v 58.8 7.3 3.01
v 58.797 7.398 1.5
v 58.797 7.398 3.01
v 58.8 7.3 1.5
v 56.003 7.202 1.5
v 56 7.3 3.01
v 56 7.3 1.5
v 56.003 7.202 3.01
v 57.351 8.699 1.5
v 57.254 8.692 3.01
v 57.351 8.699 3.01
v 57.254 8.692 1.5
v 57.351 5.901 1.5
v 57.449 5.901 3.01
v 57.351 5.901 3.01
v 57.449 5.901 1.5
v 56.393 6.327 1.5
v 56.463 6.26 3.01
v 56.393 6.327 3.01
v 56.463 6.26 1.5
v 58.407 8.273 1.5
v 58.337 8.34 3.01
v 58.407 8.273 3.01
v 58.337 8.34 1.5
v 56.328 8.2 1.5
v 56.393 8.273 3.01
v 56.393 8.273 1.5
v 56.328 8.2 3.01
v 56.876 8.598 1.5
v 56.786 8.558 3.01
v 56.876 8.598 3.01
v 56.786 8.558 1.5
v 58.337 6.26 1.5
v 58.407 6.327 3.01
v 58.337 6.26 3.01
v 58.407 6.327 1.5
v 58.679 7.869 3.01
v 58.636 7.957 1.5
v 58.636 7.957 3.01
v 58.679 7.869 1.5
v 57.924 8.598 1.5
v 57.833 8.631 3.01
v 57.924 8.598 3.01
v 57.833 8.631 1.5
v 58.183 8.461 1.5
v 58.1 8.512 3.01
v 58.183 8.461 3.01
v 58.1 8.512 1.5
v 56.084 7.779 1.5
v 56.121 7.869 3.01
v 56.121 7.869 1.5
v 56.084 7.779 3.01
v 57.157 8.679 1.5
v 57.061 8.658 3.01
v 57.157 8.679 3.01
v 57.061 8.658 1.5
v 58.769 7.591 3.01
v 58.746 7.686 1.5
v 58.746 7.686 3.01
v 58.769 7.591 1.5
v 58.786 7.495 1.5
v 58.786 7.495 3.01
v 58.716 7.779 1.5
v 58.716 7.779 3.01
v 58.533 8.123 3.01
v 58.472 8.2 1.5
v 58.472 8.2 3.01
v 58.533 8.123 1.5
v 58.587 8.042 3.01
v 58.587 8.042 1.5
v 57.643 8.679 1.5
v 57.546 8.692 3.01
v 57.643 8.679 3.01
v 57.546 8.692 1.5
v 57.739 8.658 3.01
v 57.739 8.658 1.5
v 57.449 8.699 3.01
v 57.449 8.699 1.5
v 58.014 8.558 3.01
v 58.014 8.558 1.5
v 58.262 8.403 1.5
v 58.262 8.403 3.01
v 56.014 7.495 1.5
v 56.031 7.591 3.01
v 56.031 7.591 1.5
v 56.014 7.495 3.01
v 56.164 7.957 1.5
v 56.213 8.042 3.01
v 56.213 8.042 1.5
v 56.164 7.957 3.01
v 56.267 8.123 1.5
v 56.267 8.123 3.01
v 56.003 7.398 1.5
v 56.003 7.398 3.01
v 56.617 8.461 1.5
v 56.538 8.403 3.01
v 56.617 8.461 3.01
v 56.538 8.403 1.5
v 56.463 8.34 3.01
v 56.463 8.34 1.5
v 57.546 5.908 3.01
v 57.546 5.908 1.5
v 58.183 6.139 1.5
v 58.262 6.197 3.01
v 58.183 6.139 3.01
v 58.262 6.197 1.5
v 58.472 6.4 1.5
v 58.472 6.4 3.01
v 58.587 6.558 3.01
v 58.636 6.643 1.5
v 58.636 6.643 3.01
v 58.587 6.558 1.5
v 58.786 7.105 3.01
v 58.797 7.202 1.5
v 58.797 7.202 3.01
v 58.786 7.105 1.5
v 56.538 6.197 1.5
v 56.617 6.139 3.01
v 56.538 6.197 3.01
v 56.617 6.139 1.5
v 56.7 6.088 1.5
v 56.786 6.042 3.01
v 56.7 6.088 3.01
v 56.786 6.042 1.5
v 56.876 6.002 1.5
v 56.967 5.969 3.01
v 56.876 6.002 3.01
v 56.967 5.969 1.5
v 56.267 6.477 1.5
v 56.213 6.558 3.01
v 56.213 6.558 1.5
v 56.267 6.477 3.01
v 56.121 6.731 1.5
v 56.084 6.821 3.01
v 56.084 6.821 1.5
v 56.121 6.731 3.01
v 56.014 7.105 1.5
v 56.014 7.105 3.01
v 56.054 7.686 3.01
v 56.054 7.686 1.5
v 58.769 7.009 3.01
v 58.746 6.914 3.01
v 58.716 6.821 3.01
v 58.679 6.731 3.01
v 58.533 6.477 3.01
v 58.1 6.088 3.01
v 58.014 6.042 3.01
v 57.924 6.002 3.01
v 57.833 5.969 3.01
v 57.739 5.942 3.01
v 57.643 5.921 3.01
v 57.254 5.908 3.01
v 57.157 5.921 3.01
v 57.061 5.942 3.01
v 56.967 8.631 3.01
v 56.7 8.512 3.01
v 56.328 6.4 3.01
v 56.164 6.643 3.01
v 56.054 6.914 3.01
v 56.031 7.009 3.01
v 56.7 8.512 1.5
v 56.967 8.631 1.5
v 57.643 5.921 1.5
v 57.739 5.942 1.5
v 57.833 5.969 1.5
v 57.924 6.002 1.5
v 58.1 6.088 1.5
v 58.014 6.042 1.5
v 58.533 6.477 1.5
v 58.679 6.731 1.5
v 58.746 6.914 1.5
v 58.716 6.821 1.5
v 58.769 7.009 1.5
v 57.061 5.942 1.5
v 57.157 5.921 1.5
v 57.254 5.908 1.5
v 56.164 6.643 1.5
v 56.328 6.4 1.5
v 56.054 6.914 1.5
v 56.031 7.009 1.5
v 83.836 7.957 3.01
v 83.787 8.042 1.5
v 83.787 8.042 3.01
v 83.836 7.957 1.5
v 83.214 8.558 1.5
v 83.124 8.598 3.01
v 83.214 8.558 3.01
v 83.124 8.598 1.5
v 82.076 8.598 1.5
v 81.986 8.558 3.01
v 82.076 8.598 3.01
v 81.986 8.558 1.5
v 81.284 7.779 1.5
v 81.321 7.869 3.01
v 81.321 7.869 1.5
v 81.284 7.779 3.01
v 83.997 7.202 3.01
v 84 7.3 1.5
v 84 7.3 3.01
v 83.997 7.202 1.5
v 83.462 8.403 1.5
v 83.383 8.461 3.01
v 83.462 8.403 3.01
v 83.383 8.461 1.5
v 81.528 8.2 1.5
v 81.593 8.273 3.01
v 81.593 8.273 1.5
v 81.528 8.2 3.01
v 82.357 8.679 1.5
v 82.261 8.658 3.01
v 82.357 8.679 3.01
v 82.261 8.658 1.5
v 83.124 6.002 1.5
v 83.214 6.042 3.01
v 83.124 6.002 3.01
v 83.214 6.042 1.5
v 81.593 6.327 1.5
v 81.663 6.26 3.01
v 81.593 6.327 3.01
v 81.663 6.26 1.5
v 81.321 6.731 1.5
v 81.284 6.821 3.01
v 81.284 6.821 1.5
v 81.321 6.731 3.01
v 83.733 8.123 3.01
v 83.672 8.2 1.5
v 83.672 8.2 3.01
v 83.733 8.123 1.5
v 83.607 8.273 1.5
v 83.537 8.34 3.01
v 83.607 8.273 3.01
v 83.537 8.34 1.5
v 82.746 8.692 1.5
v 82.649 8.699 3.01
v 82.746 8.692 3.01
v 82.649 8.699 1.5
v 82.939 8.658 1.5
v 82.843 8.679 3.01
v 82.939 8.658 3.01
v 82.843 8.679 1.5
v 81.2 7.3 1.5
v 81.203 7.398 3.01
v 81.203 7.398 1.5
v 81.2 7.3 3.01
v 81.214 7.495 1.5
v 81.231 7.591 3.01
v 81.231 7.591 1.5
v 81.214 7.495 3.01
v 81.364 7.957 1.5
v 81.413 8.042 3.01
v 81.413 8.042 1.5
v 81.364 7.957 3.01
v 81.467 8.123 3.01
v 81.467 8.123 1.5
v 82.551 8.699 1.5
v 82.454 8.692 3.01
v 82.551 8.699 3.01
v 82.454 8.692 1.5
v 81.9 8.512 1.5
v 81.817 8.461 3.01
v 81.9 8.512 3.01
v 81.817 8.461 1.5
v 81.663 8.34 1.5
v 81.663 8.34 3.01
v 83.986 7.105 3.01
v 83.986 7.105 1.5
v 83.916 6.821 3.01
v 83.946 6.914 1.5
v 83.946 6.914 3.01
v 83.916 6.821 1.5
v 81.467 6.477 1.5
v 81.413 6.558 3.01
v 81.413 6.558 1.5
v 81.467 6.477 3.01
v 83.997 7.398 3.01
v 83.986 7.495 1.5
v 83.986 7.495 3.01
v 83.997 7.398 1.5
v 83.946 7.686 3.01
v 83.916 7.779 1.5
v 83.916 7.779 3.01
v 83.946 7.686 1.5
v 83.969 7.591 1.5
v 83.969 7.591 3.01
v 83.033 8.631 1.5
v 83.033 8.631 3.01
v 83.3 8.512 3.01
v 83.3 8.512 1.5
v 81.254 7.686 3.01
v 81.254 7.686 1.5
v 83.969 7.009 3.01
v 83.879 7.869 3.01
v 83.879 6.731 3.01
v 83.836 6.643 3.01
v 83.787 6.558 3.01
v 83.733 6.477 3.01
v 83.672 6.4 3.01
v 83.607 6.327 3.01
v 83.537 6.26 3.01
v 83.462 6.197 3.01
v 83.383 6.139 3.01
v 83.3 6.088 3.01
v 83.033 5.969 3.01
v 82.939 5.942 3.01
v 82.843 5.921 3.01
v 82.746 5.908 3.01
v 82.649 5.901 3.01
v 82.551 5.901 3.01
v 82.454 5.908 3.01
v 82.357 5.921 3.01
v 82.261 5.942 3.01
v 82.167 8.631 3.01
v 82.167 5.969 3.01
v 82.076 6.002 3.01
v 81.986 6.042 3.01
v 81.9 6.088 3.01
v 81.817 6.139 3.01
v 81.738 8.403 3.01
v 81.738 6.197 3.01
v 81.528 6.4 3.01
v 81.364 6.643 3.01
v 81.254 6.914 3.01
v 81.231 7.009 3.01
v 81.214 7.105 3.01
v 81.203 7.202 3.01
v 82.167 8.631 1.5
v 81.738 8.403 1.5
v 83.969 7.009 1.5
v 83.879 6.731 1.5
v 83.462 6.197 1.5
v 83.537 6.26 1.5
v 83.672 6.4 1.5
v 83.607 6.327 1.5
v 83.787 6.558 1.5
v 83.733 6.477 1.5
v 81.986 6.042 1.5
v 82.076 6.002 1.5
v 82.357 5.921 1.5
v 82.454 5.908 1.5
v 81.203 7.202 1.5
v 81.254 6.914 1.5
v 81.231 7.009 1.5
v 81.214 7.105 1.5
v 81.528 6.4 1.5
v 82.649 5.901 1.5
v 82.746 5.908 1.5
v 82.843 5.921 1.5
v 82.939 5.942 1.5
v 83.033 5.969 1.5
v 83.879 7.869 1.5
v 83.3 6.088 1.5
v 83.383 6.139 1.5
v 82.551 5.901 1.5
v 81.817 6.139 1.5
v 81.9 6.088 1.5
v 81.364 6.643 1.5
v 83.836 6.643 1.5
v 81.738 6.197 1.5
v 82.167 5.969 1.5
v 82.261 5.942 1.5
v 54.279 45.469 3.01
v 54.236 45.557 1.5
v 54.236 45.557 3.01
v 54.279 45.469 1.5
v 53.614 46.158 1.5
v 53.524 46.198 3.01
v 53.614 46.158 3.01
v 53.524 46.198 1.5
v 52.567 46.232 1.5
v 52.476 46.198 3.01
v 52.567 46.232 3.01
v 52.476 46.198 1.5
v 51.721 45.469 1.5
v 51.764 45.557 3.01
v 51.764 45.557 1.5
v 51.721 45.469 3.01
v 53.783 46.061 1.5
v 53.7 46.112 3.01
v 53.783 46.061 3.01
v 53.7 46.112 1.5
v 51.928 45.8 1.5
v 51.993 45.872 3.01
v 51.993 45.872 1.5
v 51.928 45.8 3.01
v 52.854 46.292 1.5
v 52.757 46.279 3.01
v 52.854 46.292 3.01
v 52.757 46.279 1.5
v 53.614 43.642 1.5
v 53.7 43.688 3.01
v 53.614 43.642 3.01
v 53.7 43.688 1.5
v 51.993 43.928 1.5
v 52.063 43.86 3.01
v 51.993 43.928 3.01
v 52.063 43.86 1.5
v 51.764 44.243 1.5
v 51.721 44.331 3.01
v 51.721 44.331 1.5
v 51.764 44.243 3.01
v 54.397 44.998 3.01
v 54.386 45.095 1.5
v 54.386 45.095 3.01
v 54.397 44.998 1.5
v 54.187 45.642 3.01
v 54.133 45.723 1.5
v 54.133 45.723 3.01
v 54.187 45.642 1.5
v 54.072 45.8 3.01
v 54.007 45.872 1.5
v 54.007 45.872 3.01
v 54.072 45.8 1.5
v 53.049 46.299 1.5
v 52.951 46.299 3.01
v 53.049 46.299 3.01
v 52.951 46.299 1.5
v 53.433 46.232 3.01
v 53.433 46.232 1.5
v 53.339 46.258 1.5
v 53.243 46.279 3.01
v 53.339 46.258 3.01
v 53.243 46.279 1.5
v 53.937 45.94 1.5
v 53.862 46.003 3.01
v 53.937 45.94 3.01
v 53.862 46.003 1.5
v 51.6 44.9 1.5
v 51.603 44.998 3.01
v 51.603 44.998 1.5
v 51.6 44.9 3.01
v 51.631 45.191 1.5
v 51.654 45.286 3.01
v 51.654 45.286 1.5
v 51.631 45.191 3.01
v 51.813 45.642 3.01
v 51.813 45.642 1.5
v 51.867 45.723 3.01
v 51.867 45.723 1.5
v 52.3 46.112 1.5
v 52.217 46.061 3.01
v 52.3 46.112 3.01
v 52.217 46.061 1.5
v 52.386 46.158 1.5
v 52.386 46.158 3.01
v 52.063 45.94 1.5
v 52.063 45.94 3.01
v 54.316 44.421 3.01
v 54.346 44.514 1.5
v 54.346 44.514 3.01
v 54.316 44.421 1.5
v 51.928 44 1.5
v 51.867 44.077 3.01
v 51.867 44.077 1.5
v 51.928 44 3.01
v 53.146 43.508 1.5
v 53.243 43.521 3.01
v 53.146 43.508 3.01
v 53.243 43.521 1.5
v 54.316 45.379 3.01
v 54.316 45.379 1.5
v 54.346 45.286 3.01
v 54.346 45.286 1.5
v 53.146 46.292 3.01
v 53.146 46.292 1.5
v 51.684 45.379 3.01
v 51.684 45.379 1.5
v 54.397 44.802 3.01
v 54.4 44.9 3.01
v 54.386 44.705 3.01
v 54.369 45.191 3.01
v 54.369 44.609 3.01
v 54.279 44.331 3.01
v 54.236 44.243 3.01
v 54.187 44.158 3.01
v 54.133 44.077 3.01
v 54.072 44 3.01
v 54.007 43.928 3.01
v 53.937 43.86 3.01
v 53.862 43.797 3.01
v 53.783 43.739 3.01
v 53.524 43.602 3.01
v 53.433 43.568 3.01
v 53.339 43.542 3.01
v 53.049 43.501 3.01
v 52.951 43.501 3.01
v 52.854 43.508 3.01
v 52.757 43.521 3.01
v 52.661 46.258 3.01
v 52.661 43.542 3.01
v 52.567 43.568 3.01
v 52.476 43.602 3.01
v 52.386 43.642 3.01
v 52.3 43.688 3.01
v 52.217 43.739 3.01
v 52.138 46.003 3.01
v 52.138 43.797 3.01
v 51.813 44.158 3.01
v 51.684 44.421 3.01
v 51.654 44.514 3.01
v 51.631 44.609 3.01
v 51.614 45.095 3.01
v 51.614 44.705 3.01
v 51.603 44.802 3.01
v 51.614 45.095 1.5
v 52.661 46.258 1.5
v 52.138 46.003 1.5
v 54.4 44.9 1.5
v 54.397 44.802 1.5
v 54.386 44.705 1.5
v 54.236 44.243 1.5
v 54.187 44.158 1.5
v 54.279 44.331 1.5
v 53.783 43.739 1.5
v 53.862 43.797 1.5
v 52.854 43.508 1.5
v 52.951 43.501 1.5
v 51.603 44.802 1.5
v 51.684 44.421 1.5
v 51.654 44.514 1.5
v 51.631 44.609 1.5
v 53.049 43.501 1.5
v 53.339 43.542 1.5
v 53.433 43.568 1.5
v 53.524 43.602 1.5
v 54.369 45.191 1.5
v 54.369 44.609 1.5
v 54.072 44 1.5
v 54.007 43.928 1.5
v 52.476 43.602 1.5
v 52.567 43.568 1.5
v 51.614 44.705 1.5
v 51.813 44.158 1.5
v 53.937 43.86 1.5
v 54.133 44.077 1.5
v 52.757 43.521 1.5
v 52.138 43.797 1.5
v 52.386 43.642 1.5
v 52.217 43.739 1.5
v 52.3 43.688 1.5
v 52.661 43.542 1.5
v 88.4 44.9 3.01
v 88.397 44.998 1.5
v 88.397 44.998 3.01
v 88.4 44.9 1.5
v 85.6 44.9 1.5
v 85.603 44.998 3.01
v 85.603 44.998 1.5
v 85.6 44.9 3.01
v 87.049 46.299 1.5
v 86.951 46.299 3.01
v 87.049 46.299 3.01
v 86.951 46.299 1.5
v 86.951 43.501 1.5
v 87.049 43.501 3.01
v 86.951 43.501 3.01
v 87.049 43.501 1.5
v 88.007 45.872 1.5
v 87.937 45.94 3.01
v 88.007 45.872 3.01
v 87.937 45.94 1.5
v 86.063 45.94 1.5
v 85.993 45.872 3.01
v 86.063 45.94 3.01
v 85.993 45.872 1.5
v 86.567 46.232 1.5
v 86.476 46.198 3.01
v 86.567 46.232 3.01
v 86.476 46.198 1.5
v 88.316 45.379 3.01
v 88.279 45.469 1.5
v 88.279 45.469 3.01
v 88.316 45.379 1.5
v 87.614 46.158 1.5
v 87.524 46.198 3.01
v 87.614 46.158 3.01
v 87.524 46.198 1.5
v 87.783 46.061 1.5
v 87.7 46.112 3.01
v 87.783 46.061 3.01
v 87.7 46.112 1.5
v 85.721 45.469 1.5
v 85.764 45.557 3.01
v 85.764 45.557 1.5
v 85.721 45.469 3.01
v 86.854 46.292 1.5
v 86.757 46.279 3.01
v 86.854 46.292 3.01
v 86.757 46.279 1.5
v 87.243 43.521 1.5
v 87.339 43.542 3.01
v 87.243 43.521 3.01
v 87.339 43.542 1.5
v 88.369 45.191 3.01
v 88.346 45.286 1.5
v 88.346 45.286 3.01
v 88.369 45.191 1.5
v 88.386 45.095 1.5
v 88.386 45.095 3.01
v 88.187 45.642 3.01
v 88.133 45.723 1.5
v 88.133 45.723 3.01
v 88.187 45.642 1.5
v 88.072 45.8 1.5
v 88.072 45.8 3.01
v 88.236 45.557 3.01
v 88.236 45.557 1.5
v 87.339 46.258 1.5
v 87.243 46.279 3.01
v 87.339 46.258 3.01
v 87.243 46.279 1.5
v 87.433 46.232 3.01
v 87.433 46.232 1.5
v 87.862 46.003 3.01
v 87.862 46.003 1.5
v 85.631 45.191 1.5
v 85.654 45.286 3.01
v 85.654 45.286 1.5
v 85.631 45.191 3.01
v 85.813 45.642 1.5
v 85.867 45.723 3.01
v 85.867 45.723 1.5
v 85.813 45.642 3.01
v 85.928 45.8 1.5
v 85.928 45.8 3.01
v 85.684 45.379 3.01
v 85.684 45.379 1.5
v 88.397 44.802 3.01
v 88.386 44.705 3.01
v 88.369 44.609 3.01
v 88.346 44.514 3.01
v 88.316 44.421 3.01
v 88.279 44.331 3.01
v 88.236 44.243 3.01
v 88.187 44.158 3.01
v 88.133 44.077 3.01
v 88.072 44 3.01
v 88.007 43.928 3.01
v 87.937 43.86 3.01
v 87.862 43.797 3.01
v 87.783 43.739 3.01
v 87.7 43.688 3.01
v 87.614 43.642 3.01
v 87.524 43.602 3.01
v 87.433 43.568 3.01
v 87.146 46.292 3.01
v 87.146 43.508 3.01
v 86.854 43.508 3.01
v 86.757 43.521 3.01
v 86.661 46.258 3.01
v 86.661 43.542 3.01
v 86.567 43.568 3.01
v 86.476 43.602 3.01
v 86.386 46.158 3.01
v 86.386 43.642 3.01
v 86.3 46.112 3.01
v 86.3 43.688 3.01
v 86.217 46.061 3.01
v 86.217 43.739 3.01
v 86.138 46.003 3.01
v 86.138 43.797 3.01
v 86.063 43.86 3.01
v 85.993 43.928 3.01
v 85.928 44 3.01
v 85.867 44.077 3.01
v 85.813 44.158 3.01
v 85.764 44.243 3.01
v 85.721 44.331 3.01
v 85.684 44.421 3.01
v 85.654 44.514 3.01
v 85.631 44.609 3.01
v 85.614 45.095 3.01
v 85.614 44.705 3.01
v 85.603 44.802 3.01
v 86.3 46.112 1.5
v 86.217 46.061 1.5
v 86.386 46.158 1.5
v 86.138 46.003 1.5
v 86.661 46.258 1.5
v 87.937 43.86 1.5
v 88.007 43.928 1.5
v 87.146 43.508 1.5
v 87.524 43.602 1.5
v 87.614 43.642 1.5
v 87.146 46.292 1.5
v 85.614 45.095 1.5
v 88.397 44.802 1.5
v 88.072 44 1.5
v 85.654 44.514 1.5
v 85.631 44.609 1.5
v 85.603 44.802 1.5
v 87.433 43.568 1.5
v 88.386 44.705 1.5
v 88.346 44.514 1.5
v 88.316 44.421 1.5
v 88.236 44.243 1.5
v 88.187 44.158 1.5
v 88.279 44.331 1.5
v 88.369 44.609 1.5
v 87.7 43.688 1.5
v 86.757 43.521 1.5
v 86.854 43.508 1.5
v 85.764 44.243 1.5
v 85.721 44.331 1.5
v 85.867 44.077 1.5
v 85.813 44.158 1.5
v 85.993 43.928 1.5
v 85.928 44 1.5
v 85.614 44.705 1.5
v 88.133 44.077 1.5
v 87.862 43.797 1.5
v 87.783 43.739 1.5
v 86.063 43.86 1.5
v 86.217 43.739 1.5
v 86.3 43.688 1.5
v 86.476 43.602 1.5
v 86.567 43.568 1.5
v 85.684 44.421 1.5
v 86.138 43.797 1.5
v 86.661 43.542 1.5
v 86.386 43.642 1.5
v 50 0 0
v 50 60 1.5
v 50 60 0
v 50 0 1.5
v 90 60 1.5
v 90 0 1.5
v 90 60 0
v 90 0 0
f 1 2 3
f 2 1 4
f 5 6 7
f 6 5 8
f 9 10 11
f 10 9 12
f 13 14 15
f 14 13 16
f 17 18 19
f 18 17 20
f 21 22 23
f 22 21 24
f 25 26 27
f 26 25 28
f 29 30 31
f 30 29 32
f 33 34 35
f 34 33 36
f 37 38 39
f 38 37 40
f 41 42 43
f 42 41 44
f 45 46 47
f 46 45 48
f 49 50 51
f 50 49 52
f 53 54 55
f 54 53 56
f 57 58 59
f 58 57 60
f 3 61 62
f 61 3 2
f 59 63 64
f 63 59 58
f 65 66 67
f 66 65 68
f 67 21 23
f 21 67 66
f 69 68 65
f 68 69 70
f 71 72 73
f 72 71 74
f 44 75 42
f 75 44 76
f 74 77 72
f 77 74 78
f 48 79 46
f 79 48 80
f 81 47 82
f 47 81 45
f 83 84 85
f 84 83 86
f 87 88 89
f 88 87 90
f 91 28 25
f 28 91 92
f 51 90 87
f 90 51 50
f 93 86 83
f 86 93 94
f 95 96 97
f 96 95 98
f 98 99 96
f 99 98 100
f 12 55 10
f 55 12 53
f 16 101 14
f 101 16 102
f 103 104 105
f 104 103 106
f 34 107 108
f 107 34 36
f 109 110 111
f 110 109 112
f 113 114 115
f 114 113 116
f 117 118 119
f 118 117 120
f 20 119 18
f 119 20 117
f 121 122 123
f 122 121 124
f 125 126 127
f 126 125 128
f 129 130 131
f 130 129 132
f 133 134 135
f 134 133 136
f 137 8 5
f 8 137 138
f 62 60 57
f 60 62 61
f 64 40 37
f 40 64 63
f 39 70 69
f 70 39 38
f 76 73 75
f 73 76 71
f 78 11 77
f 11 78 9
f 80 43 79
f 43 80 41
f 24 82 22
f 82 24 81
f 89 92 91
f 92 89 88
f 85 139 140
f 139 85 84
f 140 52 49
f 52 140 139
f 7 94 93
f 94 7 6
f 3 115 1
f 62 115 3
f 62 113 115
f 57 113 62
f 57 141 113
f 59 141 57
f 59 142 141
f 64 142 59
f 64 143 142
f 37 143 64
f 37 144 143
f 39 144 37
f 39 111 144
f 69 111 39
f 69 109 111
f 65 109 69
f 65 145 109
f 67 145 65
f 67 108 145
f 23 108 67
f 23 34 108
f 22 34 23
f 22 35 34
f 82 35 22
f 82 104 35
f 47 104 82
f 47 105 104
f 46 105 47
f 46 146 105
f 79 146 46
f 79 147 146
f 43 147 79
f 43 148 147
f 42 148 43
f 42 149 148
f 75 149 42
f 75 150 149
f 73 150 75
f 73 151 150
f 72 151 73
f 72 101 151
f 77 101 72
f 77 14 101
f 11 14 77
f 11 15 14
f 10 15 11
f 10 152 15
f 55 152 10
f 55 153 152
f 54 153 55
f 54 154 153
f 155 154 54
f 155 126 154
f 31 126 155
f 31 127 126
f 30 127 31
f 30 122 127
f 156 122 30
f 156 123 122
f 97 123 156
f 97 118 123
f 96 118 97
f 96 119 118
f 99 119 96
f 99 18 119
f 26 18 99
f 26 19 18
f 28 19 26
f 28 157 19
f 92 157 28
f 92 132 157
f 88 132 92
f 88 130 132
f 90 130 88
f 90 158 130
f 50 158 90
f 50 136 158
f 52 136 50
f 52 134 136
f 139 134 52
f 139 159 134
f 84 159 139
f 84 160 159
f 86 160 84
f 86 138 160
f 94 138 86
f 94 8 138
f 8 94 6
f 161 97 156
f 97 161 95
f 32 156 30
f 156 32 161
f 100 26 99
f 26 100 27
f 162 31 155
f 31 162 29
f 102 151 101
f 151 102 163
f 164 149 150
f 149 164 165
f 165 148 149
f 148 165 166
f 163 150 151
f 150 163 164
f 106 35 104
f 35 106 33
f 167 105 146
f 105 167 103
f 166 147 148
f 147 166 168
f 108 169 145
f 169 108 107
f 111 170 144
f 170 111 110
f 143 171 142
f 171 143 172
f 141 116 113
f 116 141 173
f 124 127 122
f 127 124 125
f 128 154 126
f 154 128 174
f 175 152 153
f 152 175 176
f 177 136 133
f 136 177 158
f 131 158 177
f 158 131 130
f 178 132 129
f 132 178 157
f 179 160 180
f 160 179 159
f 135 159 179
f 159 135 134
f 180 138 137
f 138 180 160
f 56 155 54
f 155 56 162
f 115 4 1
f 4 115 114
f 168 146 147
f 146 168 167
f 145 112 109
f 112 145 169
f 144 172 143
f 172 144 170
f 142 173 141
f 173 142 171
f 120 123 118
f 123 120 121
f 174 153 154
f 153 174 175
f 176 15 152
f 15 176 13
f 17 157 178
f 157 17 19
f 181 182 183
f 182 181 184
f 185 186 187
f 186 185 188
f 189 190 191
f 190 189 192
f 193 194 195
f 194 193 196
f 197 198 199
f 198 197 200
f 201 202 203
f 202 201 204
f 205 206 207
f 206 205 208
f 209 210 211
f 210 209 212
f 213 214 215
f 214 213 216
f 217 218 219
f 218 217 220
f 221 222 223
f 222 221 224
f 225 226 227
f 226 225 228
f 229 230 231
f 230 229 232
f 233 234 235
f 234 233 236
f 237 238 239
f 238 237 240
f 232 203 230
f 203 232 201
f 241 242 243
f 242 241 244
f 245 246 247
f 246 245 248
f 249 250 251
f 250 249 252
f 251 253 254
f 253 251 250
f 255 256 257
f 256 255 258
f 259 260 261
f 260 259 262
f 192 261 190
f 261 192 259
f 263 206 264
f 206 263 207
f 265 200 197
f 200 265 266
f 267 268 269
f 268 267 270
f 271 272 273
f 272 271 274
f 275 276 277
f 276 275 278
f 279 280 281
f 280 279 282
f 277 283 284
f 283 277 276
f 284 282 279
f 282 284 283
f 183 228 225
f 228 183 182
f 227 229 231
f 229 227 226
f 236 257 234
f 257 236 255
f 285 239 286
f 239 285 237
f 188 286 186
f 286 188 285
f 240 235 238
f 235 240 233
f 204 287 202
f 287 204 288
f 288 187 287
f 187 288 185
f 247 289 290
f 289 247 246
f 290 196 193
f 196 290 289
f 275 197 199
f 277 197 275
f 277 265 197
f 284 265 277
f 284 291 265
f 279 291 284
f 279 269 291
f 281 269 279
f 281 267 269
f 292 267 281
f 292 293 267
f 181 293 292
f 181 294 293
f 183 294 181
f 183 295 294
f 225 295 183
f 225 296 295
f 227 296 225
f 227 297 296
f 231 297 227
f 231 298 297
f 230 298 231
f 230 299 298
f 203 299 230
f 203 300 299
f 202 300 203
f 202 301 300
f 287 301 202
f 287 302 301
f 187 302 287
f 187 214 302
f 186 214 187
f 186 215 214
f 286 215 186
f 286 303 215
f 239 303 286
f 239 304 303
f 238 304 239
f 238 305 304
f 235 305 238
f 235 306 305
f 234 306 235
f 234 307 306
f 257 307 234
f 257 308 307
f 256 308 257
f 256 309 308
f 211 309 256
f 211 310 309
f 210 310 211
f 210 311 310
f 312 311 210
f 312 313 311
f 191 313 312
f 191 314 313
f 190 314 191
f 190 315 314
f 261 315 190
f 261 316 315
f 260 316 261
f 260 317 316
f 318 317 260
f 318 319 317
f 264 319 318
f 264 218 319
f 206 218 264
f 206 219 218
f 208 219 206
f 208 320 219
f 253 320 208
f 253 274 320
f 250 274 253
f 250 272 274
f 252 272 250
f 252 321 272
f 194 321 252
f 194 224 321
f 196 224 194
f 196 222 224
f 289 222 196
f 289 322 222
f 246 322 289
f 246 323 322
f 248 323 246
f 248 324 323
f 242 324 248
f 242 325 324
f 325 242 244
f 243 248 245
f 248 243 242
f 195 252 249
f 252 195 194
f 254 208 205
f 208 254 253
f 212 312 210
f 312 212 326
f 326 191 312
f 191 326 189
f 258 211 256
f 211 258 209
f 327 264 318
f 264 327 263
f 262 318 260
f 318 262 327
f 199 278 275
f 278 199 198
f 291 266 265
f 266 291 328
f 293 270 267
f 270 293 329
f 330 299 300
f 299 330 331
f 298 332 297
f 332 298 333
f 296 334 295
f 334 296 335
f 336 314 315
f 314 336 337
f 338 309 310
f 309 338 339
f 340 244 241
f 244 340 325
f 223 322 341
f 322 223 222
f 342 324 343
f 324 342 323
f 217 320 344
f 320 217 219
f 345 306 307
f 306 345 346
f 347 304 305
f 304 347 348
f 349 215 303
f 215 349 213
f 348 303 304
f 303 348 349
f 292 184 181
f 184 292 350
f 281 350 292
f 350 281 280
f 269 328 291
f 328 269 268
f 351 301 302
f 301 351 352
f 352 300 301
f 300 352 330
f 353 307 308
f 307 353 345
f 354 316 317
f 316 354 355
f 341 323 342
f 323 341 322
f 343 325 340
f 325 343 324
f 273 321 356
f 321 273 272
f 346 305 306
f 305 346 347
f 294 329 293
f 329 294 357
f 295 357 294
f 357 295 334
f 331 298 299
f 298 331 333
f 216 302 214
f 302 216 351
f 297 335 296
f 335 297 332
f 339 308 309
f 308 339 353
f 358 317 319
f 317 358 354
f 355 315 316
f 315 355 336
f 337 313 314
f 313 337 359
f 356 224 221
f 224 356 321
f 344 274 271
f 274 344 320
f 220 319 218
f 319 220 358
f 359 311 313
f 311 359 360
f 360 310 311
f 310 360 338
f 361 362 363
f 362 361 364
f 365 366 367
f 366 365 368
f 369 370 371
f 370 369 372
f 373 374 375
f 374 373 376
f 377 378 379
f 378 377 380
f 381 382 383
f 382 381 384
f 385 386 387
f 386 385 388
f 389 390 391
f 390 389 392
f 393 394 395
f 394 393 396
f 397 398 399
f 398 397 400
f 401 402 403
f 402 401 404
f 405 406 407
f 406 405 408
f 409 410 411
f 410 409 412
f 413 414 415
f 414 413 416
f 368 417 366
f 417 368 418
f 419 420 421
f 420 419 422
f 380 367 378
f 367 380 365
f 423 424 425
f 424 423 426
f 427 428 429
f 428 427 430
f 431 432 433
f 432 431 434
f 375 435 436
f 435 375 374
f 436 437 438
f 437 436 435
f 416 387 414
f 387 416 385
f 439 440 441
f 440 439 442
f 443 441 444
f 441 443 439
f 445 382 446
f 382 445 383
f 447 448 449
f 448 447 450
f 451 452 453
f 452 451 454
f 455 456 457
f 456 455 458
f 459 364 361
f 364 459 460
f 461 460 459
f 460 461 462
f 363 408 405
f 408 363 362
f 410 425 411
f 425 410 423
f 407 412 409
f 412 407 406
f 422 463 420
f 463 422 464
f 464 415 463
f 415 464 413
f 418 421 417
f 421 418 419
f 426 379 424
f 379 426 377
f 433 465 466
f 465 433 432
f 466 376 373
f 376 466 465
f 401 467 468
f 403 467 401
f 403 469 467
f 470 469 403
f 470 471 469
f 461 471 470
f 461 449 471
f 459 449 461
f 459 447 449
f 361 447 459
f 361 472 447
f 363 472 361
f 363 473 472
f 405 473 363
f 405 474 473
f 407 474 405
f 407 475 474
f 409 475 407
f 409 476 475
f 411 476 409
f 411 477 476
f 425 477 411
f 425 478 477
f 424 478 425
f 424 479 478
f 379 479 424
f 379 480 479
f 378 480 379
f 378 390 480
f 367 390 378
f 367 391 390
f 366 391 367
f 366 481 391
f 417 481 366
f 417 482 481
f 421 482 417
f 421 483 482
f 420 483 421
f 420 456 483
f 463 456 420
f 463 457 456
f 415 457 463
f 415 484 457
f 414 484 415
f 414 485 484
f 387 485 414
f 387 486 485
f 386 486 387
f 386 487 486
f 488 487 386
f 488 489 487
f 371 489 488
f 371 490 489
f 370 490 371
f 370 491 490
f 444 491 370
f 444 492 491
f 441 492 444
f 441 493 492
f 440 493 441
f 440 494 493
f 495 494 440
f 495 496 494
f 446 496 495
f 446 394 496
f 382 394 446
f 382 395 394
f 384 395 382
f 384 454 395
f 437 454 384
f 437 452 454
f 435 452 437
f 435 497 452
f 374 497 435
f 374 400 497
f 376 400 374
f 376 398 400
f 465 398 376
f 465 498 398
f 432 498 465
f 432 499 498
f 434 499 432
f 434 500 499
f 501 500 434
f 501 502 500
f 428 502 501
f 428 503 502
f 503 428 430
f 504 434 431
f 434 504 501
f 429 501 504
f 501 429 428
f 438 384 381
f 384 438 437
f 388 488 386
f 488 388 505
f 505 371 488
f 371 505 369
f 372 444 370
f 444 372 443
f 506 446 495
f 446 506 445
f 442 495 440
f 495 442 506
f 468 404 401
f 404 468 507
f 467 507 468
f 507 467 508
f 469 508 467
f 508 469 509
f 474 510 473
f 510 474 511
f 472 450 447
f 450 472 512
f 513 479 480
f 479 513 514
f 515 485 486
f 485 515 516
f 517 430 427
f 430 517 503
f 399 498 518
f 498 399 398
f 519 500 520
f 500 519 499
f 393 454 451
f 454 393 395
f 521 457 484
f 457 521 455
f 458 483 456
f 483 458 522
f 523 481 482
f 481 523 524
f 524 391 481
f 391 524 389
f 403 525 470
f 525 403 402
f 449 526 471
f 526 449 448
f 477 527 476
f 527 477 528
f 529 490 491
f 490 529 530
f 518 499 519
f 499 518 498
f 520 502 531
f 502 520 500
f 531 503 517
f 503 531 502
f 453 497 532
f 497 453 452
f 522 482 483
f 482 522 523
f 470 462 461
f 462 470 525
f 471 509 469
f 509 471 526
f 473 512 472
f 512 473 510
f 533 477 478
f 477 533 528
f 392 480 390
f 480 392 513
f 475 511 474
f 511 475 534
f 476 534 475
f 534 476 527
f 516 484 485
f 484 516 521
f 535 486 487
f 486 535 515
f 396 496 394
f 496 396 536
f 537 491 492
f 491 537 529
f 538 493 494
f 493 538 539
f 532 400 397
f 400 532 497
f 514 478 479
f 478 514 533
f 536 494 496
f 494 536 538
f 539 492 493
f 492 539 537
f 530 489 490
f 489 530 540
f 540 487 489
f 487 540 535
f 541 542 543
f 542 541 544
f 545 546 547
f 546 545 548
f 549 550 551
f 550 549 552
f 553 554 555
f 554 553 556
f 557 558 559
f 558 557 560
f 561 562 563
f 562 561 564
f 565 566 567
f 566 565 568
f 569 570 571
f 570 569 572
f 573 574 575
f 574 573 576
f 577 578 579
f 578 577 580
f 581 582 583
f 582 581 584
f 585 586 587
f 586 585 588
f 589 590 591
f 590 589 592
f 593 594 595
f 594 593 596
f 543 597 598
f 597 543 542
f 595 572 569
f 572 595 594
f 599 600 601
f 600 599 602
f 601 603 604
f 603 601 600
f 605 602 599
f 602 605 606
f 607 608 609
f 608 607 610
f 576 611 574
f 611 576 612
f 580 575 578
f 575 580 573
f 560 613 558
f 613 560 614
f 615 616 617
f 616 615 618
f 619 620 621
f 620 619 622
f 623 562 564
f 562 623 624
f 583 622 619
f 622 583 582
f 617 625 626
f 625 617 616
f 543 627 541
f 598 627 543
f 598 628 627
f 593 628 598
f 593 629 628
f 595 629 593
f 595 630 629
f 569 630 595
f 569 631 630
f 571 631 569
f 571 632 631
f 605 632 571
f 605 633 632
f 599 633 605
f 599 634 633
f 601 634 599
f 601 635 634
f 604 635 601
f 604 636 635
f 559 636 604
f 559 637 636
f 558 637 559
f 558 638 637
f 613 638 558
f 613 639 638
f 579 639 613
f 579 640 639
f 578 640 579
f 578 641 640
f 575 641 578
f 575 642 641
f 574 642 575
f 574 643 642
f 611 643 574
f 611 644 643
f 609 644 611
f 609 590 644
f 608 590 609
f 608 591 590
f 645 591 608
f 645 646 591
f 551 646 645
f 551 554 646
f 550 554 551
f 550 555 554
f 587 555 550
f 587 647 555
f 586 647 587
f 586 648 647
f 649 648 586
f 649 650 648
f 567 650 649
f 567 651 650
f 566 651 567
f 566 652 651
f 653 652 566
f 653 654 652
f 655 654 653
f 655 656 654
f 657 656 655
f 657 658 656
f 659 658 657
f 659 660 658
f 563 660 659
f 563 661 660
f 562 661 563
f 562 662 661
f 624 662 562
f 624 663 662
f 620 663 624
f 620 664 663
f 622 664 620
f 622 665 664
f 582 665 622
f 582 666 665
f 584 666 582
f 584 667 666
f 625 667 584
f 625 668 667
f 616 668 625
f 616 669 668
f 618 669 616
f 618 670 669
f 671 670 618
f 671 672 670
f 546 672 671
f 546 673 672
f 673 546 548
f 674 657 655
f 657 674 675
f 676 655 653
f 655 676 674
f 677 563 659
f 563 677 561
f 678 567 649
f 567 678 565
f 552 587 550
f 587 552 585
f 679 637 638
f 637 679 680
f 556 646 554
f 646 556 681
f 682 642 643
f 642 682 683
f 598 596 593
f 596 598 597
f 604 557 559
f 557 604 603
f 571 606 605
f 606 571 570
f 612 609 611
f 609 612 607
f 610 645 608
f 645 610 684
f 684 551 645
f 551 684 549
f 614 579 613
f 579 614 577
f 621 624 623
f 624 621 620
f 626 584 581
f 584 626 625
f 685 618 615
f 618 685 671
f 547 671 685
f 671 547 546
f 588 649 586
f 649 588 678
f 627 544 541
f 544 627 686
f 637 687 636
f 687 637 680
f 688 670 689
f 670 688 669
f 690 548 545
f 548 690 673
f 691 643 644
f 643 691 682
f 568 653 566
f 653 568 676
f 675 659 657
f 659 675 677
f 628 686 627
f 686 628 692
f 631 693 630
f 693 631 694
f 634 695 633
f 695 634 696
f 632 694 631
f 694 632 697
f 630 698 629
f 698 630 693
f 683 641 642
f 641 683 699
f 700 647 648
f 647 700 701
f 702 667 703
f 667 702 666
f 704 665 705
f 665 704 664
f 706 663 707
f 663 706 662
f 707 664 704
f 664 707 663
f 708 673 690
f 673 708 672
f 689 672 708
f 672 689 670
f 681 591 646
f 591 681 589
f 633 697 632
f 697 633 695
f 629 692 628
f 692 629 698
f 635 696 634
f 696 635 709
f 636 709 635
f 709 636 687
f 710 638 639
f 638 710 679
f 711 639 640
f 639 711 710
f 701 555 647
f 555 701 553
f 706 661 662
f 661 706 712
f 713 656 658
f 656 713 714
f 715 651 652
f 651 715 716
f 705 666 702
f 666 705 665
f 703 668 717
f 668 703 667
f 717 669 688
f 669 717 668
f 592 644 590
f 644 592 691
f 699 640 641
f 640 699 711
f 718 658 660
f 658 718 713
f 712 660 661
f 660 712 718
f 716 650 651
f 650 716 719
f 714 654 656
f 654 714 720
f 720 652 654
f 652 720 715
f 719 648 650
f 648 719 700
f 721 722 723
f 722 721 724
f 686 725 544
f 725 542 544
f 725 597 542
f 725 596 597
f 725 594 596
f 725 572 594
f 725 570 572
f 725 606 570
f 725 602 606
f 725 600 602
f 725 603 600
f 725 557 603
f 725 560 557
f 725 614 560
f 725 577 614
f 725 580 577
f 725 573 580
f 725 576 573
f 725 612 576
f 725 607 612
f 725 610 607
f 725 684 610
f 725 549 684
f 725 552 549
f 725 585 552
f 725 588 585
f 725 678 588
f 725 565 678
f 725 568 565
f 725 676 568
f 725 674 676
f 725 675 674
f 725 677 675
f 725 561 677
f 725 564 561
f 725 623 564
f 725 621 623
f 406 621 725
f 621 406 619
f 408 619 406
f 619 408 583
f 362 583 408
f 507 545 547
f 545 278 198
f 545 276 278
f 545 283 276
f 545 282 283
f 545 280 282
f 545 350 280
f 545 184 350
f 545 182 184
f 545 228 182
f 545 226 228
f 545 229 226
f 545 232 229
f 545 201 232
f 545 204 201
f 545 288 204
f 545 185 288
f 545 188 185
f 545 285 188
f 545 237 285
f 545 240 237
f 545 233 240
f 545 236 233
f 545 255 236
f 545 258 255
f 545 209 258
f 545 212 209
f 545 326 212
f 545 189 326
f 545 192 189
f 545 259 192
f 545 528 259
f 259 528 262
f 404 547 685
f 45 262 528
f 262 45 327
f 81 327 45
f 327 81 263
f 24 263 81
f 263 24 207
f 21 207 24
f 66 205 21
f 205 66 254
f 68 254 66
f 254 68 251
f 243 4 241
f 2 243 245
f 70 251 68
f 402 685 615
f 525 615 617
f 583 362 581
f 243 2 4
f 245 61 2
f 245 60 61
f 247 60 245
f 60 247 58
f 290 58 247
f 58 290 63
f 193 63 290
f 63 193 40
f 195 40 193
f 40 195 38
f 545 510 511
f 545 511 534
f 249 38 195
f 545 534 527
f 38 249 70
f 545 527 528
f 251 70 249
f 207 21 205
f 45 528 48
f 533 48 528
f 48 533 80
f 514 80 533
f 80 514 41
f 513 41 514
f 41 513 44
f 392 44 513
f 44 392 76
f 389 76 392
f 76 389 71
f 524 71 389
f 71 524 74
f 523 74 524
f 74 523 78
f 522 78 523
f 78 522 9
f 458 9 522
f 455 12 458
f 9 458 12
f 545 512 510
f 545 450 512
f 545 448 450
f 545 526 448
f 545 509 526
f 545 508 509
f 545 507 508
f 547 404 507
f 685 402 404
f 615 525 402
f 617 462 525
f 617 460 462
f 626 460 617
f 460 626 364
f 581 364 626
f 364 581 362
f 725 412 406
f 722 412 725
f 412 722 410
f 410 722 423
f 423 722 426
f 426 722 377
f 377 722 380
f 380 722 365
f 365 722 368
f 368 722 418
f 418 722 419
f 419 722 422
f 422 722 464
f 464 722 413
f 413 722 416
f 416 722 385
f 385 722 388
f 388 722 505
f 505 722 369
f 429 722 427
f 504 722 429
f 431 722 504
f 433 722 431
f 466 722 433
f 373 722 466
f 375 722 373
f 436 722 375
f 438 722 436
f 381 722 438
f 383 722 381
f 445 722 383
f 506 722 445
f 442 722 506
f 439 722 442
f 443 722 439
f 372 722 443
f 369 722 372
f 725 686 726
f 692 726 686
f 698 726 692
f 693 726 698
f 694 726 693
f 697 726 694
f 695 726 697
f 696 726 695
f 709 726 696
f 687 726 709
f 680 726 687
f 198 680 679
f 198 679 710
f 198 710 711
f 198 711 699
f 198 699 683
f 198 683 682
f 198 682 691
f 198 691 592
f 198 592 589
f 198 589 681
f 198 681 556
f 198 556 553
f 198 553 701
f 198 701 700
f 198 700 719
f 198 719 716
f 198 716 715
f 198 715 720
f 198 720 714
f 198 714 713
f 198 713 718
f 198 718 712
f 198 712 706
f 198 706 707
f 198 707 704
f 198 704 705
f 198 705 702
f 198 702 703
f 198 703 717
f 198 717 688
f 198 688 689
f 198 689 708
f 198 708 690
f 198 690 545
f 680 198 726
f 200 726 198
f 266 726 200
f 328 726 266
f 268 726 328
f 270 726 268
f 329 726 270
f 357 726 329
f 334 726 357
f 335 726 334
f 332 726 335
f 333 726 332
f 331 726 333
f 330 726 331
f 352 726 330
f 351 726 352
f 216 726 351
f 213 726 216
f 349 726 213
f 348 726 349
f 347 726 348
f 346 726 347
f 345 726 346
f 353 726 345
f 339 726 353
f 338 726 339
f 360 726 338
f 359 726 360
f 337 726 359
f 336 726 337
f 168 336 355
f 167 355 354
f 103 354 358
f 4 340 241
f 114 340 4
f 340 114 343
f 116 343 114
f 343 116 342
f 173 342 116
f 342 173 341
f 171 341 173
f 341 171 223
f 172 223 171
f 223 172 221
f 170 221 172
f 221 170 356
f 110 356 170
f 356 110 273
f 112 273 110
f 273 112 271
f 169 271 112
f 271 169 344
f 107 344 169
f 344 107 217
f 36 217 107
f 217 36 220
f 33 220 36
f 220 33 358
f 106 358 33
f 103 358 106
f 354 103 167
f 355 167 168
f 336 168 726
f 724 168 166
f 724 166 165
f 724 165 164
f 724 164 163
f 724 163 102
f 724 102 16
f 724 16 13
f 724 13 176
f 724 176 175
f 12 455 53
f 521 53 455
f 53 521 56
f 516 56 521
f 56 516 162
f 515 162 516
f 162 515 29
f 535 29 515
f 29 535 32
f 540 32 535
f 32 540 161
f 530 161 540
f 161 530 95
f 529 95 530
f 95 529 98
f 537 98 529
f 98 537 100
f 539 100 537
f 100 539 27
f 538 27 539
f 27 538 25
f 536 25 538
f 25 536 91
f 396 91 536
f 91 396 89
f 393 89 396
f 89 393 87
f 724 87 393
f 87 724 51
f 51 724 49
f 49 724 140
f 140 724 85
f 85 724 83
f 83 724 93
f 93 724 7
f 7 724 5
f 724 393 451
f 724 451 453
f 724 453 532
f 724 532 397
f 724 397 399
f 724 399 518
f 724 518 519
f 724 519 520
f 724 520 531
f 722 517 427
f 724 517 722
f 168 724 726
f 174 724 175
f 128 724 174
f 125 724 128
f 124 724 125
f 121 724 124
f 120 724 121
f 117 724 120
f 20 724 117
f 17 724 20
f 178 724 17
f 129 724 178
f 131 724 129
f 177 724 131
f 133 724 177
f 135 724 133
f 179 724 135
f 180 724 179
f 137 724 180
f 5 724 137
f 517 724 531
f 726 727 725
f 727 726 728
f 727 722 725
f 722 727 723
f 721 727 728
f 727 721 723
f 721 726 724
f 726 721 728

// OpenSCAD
$fn=90;
pcbBoard=[40,60,1.5];

// RFID_RC522();
translate([50,0,0]) BasePlate();


module BasePlate(){
    color("white"){
        cube(pcbBoard);
        translate([0,0,pcbBoard[2]]) MountingHoles();
    }
}

module RFID_RC522(){
    difference(){
        color("blue")
            cube(pcbBoard);
        MountingHoles();
    }
    
    translate(pcbBoard-[5.1,12.1,0])
        Quartz();
  
    translate(pcbBoard-[29.3,2.1,1.5])
        PcbHoles();
  
    translate(pcbBoard-[29.3,25.4,0])
        for( x=[0:3:17.2])
            translate([x,0,0])
                Chip();  
}
module MountingHoles(){
        // mounting Holes
        for( x=[-12.6,12.6] ) {
            translate([pcbBoard[0]/2+x,7.3,-.01])
                cylinder(d=2.8,h=1.5+.02);
        }

        // mounting Holes
        dist2=34;
        for( x=[-dist2/2,dist2/2] ) {
            translate([pcbBoard[0]/2+x,44.9,-.01])
                cylinder(d=2.8,h=1.5+.02);
        }
    }


module Quartz(){
    sizeY=10.7;
//    d=3.4;
    d=4.2;
    h=3.5;
    color("silver")
        hull(){
            translate([d/2,0,0])
            for( y=[d/2,sizeY-d] ) {
                translate([0,y,0])
                    cylinder(d=d,h=3.5);
            }
        }
}

module PcbHoles(){
    sizeX=18.2;
//    d=3.4;
    d=.5;
    h=3.5;
    color("silver")
        translate([d/2,0,0])
            for( x=[d/2:2.3:sizeX] ) {
                translate([x,0,-.01])
                    cylinder(d=d,h=1.5+.02);
            }
 
}

module Chip(){
    cube([1.9,1.2,0.8]);
}
